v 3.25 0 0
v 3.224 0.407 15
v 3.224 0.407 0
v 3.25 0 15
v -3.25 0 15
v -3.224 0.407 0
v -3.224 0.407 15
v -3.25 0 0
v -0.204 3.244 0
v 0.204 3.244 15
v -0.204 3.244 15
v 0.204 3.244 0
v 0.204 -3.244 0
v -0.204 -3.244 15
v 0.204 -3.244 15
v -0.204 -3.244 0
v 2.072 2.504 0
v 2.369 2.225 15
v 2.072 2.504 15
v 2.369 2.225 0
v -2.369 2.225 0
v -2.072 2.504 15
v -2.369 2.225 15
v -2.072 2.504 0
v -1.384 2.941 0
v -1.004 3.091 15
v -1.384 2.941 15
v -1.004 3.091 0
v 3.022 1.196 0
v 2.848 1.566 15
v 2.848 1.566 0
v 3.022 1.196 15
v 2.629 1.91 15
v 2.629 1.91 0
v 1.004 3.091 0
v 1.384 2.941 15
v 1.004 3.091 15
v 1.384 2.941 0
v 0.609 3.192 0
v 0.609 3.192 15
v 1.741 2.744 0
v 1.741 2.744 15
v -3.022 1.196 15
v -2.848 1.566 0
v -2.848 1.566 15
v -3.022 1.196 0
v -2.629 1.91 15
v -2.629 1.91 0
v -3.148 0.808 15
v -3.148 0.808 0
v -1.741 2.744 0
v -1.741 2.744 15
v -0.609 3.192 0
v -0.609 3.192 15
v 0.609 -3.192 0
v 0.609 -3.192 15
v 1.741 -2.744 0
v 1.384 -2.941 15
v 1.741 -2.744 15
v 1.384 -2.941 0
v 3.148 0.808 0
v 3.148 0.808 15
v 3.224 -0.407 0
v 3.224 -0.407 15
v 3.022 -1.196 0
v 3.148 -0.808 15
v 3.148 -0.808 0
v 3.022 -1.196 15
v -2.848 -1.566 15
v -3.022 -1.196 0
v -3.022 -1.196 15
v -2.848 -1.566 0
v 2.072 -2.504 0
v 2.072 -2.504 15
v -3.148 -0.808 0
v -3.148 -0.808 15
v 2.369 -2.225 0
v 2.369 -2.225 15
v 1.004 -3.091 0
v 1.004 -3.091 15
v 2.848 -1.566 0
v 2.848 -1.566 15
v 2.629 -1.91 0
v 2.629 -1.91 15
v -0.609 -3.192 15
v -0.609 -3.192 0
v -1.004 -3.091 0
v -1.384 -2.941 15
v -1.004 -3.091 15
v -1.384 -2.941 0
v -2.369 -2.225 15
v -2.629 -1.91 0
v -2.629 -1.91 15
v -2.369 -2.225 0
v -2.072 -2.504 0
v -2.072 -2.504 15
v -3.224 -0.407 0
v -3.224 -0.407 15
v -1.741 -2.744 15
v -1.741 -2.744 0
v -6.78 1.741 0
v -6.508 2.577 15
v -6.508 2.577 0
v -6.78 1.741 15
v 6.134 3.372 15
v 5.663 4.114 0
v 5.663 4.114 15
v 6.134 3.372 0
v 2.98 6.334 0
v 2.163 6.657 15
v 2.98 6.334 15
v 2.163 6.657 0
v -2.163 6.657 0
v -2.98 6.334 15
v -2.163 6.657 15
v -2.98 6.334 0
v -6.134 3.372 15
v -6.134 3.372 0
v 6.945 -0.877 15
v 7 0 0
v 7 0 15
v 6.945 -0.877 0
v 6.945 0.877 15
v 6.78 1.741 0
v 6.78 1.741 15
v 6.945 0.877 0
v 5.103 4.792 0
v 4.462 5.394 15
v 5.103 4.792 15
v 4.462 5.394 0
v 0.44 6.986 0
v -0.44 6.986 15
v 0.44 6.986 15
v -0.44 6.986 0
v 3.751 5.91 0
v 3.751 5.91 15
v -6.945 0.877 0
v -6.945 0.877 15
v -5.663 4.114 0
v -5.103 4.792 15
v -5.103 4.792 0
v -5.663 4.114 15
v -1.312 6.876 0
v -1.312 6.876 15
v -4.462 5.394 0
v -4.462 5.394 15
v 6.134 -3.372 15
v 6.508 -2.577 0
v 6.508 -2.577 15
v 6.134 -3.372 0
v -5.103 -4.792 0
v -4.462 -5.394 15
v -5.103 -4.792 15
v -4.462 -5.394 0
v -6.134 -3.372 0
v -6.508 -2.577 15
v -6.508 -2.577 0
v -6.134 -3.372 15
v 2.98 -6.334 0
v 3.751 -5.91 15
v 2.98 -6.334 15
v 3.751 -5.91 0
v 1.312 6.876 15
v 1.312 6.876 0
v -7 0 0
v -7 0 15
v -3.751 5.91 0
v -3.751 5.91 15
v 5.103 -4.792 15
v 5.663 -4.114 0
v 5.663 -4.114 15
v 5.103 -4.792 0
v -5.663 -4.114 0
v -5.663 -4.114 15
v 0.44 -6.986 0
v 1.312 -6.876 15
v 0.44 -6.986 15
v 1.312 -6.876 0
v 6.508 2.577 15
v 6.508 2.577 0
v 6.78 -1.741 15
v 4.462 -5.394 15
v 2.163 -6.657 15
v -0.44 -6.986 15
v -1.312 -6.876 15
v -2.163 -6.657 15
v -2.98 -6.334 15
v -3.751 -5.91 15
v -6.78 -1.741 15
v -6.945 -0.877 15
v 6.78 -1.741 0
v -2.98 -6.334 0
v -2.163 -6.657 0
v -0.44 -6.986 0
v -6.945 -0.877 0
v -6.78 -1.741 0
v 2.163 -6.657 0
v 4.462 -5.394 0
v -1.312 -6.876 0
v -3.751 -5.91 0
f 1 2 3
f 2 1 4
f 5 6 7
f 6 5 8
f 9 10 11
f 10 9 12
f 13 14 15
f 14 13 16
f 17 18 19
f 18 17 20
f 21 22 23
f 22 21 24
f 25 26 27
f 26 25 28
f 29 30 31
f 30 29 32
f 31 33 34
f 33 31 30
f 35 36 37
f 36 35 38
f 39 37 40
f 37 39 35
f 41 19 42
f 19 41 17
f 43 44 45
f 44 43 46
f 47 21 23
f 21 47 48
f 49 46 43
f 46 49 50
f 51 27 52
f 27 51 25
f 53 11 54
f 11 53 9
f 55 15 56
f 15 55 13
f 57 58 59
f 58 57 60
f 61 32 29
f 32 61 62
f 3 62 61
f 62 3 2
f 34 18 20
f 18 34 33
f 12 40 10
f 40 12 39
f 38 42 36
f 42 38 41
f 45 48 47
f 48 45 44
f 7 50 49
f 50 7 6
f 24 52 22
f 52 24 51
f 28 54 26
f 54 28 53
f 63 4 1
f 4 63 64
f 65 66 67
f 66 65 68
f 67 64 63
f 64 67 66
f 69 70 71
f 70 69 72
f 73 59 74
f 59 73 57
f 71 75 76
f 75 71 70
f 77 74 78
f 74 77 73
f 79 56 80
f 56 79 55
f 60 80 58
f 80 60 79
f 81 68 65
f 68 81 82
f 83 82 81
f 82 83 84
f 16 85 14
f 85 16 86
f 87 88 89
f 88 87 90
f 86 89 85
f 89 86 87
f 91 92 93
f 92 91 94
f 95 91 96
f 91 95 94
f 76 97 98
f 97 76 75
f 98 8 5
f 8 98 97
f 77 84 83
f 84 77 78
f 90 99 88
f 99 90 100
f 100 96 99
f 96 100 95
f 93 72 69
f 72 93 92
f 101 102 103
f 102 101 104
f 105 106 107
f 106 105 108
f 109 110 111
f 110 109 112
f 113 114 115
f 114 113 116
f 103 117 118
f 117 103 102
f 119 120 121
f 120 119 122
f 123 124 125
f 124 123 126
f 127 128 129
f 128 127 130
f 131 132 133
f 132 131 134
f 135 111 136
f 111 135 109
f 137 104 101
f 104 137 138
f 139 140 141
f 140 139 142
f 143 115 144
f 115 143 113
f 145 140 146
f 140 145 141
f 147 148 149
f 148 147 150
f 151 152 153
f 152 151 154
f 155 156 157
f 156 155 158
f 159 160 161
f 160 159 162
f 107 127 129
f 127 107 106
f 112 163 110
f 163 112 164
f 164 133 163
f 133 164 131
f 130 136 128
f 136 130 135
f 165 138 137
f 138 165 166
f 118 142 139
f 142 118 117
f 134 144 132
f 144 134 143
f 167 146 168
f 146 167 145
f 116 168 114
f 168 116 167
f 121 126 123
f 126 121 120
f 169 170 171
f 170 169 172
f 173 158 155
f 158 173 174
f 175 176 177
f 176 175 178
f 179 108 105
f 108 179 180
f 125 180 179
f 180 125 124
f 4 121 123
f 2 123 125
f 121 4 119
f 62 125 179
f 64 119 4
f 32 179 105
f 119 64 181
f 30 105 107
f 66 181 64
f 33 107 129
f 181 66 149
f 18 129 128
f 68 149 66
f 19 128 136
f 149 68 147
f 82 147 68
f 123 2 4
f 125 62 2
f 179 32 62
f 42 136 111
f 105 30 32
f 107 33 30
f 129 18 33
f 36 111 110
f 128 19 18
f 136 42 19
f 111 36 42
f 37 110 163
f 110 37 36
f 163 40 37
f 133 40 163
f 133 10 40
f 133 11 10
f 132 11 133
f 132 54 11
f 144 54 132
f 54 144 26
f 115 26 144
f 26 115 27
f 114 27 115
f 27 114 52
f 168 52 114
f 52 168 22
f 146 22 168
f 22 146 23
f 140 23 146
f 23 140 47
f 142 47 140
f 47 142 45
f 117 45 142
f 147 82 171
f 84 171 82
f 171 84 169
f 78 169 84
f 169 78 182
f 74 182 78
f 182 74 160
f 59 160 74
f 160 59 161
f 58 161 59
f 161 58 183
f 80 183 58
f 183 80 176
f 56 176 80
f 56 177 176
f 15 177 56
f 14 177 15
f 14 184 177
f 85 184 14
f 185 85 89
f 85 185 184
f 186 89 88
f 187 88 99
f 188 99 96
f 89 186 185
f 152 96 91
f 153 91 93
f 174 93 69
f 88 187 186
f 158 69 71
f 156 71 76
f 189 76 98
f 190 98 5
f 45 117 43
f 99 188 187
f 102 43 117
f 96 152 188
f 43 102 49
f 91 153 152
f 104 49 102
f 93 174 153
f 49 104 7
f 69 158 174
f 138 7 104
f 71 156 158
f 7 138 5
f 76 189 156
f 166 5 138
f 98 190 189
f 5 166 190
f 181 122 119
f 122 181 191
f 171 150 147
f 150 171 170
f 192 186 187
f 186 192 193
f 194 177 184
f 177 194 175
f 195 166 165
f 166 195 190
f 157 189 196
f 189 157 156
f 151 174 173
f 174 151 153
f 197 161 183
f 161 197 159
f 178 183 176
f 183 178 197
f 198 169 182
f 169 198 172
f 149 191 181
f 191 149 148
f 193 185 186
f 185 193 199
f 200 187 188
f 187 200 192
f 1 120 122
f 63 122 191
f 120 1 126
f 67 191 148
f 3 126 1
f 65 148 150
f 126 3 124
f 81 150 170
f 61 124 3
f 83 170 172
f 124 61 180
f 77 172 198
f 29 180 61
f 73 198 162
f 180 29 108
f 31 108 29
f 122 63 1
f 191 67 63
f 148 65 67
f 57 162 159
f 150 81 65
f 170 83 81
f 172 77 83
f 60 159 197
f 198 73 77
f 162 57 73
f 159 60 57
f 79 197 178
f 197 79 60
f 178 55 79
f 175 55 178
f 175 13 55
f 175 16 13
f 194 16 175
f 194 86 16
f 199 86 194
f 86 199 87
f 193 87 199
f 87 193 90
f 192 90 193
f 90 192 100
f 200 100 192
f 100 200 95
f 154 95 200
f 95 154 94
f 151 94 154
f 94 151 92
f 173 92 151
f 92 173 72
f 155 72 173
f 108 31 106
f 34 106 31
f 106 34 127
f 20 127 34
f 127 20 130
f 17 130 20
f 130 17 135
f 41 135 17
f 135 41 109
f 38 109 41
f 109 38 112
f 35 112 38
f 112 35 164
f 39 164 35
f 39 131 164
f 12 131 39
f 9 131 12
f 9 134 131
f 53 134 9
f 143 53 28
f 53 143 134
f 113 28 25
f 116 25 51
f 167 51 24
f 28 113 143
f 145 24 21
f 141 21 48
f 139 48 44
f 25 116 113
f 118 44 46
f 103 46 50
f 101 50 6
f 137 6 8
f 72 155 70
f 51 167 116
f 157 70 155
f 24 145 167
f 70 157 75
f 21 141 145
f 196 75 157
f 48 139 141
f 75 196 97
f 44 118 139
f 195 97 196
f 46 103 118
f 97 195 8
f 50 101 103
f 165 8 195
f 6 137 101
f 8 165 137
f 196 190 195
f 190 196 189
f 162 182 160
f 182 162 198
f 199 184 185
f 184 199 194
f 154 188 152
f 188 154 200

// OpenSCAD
$fn = 50;


difference() {
	union() {
		cylinder(h = 15, r = 7.0000000000);
	}
	union() {
		translate(v = [0.0000000000, 0.0000000000, -100.0000000000]) {
			cylinder(h = 200, r = 3.2500000000);
		}
		translate(v = [0.0000000000, 0.0000000000, -100.0000000000]) {
			cylinder(h = 200, r = 3.2500000000);
		}
		translate(v = [0.0000000000, 0.0000000000, -100.0000000000]) {
			cylinder(h = 200, r = 3.2500000000);
		}
		translate(v = [0.0000000000, 0.0000000000, -100.0000000000]) {
			cylinder(h = 200, r = 3.2500000000);
		}
	}
}
